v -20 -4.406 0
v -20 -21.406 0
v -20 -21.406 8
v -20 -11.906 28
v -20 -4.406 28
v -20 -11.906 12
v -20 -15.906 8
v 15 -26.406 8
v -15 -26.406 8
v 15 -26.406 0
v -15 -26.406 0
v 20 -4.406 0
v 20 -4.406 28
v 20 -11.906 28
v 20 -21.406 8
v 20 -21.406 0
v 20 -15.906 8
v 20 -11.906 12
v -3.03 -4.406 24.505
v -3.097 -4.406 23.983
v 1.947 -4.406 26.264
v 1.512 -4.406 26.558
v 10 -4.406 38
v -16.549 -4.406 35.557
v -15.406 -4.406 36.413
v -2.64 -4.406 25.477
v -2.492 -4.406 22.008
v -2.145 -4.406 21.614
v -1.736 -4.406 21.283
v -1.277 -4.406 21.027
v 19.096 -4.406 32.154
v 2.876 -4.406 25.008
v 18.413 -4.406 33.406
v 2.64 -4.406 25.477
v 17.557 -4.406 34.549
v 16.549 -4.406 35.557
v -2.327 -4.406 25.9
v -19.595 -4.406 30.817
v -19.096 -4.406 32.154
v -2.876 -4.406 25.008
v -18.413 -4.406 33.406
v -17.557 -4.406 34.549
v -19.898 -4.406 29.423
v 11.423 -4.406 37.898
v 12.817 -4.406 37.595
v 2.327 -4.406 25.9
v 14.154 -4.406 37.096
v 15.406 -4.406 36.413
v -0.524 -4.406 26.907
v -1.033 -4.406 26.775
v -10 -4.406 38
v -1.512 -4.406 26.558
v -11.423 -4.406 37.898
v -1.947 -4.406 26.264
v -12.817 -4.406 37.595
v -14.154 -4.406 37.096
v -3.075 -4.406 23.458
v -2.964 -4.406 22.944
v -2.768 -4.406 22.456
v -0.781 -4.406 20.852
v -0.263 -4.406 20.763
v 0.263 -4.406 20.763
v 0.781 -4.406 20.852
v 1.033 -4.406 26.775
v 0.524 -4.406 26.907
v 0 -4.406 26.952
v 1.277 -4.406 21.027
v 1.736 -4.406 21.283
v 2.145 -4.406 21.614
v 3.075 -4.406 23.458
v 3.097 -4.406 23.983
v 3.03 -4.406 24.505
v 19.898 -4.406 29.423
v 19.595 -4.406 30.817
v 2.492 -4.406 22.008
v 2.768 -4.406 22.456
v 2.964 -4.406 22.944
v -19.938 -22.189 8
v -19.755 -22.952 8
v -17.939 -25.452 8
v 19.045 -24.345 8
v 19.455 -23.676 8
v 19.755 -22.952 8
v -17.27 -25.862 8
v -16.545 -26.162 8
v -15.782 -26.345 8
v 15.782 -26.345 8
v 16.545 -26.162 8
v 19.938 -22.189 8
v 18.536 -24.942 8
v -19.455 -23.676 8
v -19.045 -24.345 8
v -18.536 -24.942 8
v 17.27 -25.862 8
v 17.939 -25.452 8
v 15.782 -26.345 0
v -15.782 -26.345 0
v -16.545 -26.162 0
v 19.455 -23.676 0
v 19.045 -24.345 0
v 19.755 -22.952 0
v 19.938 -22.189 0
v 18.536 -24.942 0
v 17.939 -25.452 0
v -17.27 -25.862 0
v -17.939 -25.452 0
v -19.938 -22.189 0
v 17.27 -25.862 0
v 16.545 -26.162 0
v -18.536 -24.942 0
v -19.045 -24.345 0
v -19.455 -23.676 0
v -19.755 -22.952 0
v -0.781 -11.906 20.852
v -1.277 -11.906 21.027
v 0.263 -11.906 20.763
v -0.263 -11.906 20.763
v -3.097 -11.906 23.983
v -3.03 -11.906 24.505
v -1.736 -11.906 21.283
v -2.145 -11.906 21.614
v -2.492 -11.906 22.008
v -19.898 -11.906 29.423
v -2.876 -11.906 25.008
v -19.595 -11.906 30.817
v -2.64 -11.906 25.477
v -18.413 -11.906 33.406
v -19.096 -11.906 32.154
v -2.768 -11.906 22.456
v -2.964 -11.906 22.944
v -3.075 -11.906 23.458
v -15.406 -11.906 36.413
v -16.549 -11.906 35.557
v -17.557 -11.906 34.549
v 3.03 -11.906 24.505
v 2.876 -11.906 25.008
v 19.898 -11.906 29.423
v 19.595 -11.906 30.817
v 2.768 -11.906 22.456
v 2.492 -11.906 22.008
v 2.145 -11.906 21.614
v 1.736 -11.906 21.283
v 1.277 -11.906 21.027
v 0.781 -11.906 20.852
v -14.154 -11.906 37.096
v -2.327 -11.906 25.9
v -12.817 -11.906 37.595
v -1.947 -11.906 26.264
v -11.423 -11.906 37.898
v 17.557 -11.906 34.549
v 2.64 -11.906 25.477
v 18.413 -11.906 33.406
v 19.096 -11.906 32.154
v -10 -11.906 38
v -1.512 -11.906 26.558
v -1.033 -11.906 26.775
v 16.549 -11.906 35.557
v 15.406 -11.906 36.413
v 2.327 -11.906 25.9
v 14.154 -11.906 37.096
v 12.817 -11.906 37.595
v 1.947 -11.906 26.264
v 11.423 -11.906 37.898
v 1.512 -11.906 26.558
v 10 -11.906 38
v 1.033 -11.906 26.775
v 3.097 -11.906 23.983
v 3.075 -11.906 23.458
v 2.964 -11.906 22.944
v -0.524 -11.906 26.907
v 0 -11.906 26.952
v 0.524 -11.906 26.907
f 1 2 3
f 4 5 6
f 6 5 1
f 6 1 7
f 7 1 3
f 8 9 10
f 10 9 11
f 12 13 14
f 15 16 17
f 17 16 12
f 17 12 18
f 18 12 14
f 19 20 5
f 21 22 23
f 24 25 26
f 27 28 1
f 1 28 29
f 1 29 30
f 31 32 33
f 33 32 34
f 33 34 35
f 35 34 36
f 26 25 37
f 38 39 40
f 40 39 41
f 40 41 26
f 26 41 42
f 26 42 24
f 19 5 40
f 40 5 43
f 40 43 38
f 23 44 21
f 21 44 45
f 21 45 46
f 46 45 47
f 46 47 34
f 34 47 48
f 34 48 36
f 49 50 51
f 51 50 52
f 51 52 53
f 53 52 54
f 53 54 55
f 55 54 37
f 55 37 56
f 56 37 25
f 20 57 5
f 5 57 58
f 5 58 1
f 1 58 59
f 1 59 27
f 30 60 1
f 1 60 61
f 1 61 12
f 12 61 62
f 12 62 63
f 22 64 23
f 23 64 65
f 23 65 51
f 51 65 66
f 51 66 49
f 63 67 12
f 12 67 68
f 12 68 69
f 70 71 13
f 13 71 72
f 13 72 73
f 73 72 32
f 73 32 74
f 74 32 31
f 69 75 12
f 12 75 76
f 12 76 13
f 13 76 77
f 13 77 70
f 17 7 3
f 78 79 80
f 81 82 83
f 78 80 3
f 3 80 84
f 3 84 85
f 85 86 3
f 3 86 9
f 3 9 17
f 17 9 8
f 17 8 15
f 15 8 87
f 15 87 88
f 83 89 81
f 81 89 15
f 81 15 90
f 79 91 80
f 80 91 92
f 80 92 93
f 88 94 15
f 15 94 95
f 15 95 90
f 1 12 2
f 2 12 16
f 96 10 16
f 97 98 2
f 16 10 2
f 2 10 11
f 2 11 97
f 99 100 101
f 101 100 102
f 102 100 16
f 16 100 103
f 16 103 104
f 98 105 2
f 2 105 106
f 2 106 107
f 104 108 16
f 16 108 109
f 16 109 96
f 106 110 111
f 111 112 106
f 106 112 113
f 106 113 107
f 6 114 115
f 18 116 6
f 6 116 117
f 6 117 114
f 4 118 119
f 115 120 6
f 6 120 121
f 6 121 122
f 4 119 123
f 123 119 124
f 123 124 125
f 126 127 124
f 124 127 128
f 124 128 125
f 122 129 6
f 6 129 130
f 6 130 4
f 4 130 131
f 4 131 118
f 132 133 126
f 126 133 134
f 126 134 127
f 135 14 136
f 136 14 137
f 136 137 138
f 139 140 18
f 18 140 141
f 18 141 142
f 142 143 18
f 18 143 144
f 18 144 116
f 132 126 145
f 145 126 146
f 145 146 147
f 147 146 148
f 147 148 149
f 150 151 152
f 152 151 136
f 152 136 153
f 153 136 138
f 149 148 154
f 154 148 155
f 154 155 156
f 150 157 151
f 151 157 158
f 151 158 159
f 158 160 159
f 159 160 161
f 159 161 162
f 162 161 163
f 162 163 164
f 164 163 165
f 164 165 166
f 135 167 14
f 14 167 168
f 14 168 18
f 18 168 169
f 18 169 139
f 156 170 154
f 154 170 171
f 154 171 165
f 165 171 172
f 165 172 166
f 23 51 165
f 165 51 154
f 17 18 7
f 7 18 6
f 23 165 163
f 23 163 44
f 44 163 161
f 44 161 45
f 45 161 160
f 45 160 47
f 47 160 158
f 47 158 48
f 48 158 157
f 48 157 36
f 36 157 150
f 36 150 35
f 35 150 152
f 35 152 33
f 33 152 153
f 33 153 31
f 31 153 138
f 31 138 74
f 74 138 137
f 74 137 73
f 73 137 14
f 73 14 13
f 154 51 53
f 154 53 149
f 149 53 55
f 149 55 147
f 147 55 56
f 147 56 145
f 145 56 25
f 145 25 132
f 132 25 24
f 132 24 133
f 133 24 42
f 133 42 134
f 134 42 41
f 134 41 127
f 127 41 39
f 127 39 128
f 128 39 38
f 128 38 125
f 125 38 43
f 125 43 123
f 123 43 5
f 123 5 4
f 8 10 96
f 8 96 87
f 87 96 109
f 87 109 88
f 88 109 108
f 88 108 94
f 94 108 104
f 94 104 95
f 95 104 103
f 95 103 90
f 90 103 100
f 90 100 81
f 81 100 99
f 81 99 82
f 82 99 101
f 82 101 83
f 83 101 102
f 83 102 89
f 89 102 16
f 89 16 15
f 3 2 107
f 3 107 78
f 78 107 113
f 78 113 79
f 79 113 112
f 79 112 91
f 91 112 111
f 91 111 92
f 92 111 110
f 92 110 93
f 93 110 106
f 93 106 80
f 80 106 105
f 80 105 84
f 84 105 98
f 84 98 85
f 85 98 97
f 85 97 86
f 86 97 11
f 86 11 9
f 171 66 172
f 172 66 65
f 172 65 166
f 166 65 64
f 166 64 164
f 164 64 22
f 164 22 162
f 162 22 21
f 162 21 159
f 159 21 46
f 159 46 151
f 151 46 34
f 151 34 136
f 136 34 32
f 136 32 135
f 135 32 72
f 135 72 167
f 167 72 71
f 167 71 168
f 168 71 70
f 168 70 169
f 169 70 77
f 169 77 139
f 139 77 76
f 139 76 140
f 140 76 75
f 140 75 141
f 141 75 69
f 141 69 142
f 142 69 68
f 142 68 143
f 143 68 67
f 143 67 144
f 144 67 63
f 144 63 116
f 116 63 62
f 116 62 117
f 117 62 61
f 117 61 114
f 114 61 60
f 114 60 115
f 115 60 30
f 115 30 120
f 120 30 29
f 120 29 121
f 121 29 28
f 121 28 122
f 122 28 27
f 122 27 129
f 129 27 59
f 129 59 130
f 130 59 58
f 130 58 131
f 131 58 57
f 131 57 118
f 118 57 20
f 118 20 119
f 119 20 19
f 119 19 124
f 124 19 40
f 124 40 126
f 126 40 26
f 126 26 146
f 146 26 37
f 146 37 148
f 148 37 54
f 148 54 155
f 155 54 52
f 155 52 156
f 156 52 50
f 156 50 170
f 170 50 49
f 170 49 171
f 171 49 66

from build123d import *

# Parameters (mm, degrees)
SKETCH1_W           = 40
SKETCH1_H           = 22
BOSS_EXTRUDE1_DEPTH = 8
SKETCH2_W           = 40
SKETCH2_H           = 7.5
BOSS_EXTRUDE2_DEPTH = 30
CHAMFER1_SIZE       = 4
FILLET1_R           = 10
FILLET2_R           = 5
SKETCH3_R           = 3.1
CUT_EXTRUDE1_DEPTH  = 49.249352327


with BuildPart() as part:
    # Sketch1 → Boss-Extrude1 (new body)
    with BuildSketch(Plane.XY):
        with Locations((0, -15.406470283)):
            Rectangle(SKETCH1_W, SKETCH1_H)
    extrude(amount=BOSS_EXTRUDE1_DEPTH)

    # Sketch2 → Boss-Extrude2 (add)
    with BuildSketch(Plane.XY.offset(8)):
        with Locations((0, -8.156470283)):
            Rectangle(SKETCH2_W, SKETCH2_H)
    extrude(amount=BOSS_EXTRUDE2_DEPTH)

    # Chamfer1
    chamfer1_edges = [part.edges().sort_by_distance(p)[0] for p in [
        (0, -11.906470283, 8),
    ]]
    chamfer(chamfer1_edges, length=CHAMFER1_SIZE)

    # Fillet1
    fillet1_edges = [part.edges().sort_by_distance(p)[0] for p in [
        (-20, -8.156470283, 38),
        (20, -8.156470283, 38),
    ]]
    fillet(fillet1_edges, radius=FILLET1_R)

    # Fillet2
    fillet2_edges = [part.edges().sort_by_distance(p)[0] for p in [
        (20, -26.406470283, 4),
        (-20, -26.406470283, 4),
    ]]
    fillet(fillet2_edges, radius=FILLET2_R)

    # Sketch3 → Cut-Extrude1 (cut, through all)
    with BuildSketch(Plane(origin=(0, -4.406470283, 0), x_dir=(1, 0, 0), z_dir=(0, 1, 0))):
        with Locations(Location((0, -23.851791769, 0), (0, 0, 270))):
            Circle(SKETCH3_R)
    extrude(amount=-CUT_EXTRUDE1_DEPTH, mode=Mode.SUBTRACT)


solid = part.part
